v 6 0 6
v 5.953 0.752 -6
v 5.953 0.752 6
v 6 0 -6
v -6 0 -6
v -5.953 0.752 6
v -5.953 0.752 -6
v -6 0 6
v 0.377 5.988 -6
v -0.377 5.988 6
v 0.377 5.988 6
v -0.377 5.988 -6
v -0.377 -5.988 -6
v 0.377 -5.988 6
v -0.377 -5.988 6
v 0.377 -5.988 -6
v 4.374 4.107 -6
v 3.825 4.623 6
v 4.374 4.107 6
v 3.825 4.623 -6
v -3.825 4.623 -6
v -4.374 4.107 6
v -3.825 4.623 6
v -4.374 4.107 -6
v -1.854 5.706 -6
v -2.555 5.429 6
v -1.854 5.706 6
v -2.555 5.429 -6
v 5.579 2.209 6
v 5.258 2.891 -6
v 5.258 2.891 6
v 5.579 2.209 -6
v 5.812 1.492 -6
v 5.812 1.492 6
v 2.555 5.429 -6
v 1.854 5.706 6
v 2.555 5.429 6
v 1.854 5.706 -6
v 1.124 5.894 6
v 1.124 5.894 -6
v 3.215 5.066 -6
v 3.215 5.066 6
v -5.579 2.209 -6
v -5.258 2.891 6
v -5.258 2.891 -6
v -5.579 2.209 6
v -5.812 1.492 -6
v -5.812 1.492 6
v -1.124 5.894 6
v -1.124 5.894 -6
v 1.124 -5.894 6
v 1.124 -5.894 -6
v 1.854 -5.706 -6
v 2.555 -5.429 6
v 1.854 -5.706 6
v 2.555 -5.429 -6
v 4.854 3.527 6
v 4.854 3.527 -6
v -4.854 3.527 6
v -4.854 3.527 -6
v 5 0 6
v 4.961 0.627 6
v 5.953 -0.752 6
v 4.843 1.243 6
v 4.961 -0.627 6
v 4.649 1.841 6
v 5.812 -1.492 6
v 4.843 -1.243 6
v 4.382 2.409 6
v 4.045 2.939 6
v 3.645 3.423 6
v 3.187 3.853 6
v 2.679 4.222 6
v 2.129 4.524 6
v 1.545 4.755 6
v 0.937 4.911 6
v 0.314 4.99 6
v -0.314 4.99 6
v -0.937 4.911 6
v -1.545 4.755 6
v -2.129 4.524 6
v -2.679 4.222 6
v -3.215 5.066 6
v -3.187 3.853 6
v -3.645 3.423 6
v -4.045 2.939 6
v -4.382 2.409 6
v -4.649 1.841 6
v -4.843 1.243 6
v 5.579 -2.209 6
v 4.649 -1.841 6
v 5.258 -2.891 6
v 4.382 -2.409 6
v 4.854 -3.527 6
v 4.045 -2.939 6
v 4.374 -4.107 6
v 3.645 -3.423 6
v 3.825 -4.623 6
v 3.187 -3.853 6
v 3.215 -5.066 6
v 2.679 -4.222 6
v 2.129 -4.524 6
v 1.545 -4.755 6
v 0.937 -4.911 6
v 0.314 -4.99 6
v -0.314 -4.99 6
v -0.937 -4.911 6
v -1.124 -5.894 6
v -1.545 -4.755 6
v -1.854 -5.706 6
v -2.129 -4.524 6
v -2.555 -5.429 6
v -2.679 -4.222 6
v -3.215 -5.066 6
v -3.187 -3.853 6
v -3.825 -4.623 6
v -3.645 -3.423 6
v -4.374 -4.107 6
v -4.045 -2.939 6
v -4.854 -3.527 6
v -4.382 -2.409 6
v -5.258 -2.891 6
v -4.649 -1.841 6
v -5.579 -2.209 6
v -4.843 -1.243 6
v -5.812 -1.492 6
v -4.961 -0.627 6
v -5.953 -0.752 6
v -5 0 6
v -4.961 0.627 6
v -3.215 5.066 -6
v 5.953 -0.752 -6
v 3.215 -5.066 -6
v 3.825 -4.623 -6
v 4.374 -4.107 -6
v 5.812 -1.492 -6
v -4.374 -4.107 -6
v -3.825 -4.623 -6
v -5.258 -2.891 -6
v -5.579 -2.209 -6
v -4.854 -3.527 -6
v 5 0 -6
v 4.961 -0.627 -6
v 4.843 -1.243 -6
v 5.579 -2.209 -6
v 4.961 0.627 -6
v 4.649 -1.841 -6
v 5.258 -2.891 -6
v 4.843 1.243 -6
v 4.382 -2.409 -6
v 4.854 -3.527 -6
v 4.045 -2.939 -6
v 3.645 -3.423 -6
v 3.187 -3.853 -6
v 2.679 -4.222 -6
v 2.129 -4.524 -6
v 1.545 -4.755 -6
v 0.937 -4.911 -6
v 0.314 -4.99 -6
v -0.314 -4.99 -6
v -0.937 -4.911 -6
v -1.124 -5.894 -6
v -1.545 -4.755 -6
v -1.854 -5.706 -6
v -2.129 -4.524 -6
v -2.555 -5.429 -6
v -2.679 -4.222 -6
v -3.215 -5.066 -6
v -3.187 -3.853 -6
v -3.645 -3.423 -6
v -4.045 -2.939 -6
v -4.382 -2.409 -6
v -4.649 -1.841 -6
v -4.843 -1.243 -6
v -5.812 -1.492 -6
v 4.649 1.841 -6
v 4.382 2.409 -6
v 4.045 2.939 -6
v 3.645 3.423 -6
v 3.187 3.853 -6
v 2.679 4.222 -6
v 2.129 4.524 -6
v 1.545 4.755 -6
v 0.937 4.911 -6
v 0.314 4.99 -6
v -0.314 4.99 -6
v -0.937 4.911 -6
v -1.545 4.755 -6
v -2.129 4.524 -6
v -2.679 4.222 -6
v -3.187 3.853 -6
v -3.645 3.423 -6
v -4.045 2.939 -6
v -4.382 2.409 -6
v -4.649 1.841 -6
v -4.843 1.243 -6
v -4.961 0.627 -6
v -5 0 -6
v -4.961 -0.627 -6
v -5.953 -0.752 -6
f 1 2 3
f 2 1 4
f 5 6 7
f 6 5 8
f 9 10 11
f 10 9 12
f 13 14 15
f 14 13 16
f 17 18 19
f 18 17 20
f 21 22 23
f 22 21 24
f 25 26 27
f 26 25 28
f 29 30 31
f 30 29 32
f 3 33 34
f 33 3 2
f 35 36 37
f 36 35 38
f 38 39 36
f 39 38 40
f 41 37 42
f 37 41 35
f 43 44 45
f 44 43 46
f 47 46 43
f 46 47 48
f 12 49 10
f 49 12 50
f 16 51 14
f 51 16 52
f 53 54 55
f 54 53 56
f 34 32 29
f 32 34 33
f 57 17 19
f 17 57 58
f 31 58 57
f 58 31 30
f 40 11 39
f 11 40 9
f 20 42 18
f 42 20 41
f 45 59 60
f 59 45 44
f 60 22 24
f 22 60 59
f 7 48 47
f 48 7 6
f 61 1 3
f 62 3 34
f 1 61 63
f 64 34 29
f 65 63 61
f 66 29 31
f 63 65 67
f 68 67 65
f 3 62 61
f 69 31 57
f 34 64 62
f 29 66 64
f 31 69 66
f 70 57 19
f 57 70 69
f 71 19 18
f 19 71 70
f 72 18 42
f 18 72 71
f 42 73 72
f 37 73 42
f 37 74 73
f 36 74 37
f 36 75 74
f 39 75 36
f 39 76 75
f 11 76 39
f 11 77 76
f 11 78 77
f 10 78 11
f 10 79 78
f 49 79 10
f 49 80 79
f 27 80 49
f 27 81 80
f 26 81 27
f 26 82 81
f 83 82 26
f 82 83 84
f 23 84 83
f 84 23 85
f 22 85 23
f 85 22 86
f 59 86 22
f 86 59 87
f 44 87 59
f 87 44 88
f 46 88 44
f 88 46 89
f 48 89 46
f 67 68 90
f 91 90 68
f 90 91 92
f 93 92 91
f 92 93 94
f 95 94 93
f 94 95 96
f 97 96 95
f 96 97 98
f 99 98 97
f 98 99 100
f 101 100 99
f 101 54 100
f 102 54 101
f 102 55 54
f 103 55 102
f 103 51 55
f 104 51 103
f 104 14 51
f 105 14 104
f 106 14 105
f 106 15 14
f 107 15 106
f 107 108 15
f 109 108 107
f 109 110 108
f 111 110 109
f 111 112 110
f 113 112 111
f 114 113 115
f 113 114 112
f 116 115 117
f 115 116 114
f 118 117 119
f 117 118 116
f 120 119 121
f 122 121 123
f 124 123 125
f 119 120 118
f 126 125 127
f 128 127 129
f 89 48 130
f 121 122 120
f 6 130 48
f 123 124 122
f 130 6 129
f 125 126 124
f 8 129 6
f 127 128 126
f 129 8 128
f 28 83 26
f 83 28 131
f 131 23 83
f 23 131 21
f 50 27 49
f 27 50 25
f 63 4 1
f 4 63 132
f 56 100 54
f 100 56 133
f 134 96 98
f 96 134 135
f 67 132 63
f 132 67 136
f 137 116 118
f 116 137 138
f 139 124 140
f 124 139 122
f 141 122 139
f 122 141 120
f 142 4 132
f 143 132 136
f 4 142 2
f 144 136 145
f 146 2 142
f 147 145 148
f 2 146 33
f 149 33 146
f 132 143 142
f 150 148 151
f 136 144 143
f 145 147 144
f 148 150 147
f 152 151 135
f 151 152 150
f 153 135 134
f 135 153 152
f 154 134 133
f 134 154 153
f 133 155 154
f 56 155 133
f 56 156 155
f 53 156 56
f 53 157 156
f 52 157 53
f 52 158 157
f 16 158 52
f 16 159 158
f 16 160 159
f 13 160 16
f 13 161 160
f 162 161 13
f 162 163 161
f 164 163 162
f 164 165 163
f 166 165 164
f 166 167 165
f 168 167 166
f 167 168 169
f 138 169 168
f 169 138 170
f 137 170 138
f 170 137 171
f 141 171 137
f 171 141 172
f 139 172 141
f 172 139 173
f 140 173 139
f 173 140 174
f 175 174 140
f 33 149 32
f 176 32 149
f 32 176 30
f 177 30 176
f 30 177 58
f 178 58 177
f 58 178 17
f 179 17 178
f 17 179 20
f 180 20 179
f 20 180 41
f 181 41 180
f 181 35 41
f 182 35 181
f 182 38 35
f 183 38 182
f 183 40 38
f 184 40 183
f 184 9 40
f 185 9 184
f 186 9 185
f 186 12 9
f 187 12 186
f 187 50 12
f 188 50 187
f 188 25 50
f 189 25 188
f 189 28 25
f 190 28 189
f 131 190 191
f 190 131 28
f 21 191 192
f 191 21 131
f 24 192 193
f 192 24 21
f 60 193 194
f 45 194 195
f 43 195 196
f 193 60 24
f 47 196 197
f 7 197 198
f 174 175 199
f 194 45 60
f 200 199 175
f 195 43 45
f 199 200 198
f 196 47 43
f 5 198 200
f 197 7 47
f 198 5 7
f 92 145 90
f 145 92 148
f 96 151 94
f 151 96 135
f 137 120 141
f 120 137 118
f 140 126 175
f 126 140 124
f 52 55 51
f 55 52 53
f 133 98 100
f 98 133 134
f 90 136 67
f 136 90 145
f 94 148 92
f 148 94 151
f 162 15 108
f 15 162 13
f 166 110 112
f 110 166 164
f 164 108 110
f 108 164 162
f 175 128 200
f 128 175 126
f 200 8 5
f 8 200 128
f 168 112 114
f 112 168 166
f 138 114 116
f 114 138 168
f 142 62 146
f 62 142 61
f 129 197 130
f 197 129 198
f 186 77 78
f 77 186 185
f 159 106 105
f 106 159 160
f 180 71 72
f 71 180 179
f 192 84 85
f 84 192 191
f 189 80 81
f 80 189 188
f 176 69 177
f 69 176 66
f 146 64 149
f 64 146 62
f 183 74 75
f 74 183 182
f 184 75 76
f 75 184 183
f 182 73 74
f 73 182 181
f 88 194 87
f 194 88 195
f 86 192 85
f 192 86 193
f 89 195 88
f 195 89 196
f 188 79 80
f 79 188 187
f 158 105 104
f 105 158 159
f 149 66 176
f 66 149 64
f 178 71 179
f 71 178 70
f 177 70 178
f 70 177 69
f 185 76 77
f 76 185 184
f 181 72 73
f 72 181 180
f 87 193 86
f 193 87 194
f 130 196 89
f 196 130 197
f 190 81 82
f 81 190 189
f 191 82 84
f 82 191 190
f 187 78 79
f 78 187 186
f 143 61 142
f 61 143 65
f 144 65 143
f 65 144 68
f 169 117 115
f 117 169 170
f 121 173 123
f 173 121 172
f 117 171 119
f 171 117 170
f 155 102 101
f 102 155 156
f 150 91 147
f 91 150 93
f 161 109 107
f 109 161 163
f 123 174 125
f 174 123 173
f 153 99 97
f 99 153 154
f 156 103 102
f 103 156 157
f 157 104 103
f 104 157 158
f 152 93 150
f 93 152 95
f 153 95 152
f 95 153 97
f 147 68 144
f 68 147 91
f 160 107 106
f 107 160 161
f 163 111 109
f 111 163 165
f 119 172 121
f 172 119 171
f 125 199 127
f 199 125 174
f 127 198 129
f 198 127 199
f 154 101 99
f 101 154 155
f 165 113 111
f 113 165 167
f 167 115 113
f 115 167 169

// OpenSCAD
$fn = 50;


difference() {
	union() {
		translate(v = [0, 0, -6.0000000000]) {
			cylinder(h = 12, r = 6.0000000000);
		}
	}
	union() {
		translate(v = [0, 0, -100.0000000000]) {
			cylinder(h = 200, r = 5);
		}
	}
}
